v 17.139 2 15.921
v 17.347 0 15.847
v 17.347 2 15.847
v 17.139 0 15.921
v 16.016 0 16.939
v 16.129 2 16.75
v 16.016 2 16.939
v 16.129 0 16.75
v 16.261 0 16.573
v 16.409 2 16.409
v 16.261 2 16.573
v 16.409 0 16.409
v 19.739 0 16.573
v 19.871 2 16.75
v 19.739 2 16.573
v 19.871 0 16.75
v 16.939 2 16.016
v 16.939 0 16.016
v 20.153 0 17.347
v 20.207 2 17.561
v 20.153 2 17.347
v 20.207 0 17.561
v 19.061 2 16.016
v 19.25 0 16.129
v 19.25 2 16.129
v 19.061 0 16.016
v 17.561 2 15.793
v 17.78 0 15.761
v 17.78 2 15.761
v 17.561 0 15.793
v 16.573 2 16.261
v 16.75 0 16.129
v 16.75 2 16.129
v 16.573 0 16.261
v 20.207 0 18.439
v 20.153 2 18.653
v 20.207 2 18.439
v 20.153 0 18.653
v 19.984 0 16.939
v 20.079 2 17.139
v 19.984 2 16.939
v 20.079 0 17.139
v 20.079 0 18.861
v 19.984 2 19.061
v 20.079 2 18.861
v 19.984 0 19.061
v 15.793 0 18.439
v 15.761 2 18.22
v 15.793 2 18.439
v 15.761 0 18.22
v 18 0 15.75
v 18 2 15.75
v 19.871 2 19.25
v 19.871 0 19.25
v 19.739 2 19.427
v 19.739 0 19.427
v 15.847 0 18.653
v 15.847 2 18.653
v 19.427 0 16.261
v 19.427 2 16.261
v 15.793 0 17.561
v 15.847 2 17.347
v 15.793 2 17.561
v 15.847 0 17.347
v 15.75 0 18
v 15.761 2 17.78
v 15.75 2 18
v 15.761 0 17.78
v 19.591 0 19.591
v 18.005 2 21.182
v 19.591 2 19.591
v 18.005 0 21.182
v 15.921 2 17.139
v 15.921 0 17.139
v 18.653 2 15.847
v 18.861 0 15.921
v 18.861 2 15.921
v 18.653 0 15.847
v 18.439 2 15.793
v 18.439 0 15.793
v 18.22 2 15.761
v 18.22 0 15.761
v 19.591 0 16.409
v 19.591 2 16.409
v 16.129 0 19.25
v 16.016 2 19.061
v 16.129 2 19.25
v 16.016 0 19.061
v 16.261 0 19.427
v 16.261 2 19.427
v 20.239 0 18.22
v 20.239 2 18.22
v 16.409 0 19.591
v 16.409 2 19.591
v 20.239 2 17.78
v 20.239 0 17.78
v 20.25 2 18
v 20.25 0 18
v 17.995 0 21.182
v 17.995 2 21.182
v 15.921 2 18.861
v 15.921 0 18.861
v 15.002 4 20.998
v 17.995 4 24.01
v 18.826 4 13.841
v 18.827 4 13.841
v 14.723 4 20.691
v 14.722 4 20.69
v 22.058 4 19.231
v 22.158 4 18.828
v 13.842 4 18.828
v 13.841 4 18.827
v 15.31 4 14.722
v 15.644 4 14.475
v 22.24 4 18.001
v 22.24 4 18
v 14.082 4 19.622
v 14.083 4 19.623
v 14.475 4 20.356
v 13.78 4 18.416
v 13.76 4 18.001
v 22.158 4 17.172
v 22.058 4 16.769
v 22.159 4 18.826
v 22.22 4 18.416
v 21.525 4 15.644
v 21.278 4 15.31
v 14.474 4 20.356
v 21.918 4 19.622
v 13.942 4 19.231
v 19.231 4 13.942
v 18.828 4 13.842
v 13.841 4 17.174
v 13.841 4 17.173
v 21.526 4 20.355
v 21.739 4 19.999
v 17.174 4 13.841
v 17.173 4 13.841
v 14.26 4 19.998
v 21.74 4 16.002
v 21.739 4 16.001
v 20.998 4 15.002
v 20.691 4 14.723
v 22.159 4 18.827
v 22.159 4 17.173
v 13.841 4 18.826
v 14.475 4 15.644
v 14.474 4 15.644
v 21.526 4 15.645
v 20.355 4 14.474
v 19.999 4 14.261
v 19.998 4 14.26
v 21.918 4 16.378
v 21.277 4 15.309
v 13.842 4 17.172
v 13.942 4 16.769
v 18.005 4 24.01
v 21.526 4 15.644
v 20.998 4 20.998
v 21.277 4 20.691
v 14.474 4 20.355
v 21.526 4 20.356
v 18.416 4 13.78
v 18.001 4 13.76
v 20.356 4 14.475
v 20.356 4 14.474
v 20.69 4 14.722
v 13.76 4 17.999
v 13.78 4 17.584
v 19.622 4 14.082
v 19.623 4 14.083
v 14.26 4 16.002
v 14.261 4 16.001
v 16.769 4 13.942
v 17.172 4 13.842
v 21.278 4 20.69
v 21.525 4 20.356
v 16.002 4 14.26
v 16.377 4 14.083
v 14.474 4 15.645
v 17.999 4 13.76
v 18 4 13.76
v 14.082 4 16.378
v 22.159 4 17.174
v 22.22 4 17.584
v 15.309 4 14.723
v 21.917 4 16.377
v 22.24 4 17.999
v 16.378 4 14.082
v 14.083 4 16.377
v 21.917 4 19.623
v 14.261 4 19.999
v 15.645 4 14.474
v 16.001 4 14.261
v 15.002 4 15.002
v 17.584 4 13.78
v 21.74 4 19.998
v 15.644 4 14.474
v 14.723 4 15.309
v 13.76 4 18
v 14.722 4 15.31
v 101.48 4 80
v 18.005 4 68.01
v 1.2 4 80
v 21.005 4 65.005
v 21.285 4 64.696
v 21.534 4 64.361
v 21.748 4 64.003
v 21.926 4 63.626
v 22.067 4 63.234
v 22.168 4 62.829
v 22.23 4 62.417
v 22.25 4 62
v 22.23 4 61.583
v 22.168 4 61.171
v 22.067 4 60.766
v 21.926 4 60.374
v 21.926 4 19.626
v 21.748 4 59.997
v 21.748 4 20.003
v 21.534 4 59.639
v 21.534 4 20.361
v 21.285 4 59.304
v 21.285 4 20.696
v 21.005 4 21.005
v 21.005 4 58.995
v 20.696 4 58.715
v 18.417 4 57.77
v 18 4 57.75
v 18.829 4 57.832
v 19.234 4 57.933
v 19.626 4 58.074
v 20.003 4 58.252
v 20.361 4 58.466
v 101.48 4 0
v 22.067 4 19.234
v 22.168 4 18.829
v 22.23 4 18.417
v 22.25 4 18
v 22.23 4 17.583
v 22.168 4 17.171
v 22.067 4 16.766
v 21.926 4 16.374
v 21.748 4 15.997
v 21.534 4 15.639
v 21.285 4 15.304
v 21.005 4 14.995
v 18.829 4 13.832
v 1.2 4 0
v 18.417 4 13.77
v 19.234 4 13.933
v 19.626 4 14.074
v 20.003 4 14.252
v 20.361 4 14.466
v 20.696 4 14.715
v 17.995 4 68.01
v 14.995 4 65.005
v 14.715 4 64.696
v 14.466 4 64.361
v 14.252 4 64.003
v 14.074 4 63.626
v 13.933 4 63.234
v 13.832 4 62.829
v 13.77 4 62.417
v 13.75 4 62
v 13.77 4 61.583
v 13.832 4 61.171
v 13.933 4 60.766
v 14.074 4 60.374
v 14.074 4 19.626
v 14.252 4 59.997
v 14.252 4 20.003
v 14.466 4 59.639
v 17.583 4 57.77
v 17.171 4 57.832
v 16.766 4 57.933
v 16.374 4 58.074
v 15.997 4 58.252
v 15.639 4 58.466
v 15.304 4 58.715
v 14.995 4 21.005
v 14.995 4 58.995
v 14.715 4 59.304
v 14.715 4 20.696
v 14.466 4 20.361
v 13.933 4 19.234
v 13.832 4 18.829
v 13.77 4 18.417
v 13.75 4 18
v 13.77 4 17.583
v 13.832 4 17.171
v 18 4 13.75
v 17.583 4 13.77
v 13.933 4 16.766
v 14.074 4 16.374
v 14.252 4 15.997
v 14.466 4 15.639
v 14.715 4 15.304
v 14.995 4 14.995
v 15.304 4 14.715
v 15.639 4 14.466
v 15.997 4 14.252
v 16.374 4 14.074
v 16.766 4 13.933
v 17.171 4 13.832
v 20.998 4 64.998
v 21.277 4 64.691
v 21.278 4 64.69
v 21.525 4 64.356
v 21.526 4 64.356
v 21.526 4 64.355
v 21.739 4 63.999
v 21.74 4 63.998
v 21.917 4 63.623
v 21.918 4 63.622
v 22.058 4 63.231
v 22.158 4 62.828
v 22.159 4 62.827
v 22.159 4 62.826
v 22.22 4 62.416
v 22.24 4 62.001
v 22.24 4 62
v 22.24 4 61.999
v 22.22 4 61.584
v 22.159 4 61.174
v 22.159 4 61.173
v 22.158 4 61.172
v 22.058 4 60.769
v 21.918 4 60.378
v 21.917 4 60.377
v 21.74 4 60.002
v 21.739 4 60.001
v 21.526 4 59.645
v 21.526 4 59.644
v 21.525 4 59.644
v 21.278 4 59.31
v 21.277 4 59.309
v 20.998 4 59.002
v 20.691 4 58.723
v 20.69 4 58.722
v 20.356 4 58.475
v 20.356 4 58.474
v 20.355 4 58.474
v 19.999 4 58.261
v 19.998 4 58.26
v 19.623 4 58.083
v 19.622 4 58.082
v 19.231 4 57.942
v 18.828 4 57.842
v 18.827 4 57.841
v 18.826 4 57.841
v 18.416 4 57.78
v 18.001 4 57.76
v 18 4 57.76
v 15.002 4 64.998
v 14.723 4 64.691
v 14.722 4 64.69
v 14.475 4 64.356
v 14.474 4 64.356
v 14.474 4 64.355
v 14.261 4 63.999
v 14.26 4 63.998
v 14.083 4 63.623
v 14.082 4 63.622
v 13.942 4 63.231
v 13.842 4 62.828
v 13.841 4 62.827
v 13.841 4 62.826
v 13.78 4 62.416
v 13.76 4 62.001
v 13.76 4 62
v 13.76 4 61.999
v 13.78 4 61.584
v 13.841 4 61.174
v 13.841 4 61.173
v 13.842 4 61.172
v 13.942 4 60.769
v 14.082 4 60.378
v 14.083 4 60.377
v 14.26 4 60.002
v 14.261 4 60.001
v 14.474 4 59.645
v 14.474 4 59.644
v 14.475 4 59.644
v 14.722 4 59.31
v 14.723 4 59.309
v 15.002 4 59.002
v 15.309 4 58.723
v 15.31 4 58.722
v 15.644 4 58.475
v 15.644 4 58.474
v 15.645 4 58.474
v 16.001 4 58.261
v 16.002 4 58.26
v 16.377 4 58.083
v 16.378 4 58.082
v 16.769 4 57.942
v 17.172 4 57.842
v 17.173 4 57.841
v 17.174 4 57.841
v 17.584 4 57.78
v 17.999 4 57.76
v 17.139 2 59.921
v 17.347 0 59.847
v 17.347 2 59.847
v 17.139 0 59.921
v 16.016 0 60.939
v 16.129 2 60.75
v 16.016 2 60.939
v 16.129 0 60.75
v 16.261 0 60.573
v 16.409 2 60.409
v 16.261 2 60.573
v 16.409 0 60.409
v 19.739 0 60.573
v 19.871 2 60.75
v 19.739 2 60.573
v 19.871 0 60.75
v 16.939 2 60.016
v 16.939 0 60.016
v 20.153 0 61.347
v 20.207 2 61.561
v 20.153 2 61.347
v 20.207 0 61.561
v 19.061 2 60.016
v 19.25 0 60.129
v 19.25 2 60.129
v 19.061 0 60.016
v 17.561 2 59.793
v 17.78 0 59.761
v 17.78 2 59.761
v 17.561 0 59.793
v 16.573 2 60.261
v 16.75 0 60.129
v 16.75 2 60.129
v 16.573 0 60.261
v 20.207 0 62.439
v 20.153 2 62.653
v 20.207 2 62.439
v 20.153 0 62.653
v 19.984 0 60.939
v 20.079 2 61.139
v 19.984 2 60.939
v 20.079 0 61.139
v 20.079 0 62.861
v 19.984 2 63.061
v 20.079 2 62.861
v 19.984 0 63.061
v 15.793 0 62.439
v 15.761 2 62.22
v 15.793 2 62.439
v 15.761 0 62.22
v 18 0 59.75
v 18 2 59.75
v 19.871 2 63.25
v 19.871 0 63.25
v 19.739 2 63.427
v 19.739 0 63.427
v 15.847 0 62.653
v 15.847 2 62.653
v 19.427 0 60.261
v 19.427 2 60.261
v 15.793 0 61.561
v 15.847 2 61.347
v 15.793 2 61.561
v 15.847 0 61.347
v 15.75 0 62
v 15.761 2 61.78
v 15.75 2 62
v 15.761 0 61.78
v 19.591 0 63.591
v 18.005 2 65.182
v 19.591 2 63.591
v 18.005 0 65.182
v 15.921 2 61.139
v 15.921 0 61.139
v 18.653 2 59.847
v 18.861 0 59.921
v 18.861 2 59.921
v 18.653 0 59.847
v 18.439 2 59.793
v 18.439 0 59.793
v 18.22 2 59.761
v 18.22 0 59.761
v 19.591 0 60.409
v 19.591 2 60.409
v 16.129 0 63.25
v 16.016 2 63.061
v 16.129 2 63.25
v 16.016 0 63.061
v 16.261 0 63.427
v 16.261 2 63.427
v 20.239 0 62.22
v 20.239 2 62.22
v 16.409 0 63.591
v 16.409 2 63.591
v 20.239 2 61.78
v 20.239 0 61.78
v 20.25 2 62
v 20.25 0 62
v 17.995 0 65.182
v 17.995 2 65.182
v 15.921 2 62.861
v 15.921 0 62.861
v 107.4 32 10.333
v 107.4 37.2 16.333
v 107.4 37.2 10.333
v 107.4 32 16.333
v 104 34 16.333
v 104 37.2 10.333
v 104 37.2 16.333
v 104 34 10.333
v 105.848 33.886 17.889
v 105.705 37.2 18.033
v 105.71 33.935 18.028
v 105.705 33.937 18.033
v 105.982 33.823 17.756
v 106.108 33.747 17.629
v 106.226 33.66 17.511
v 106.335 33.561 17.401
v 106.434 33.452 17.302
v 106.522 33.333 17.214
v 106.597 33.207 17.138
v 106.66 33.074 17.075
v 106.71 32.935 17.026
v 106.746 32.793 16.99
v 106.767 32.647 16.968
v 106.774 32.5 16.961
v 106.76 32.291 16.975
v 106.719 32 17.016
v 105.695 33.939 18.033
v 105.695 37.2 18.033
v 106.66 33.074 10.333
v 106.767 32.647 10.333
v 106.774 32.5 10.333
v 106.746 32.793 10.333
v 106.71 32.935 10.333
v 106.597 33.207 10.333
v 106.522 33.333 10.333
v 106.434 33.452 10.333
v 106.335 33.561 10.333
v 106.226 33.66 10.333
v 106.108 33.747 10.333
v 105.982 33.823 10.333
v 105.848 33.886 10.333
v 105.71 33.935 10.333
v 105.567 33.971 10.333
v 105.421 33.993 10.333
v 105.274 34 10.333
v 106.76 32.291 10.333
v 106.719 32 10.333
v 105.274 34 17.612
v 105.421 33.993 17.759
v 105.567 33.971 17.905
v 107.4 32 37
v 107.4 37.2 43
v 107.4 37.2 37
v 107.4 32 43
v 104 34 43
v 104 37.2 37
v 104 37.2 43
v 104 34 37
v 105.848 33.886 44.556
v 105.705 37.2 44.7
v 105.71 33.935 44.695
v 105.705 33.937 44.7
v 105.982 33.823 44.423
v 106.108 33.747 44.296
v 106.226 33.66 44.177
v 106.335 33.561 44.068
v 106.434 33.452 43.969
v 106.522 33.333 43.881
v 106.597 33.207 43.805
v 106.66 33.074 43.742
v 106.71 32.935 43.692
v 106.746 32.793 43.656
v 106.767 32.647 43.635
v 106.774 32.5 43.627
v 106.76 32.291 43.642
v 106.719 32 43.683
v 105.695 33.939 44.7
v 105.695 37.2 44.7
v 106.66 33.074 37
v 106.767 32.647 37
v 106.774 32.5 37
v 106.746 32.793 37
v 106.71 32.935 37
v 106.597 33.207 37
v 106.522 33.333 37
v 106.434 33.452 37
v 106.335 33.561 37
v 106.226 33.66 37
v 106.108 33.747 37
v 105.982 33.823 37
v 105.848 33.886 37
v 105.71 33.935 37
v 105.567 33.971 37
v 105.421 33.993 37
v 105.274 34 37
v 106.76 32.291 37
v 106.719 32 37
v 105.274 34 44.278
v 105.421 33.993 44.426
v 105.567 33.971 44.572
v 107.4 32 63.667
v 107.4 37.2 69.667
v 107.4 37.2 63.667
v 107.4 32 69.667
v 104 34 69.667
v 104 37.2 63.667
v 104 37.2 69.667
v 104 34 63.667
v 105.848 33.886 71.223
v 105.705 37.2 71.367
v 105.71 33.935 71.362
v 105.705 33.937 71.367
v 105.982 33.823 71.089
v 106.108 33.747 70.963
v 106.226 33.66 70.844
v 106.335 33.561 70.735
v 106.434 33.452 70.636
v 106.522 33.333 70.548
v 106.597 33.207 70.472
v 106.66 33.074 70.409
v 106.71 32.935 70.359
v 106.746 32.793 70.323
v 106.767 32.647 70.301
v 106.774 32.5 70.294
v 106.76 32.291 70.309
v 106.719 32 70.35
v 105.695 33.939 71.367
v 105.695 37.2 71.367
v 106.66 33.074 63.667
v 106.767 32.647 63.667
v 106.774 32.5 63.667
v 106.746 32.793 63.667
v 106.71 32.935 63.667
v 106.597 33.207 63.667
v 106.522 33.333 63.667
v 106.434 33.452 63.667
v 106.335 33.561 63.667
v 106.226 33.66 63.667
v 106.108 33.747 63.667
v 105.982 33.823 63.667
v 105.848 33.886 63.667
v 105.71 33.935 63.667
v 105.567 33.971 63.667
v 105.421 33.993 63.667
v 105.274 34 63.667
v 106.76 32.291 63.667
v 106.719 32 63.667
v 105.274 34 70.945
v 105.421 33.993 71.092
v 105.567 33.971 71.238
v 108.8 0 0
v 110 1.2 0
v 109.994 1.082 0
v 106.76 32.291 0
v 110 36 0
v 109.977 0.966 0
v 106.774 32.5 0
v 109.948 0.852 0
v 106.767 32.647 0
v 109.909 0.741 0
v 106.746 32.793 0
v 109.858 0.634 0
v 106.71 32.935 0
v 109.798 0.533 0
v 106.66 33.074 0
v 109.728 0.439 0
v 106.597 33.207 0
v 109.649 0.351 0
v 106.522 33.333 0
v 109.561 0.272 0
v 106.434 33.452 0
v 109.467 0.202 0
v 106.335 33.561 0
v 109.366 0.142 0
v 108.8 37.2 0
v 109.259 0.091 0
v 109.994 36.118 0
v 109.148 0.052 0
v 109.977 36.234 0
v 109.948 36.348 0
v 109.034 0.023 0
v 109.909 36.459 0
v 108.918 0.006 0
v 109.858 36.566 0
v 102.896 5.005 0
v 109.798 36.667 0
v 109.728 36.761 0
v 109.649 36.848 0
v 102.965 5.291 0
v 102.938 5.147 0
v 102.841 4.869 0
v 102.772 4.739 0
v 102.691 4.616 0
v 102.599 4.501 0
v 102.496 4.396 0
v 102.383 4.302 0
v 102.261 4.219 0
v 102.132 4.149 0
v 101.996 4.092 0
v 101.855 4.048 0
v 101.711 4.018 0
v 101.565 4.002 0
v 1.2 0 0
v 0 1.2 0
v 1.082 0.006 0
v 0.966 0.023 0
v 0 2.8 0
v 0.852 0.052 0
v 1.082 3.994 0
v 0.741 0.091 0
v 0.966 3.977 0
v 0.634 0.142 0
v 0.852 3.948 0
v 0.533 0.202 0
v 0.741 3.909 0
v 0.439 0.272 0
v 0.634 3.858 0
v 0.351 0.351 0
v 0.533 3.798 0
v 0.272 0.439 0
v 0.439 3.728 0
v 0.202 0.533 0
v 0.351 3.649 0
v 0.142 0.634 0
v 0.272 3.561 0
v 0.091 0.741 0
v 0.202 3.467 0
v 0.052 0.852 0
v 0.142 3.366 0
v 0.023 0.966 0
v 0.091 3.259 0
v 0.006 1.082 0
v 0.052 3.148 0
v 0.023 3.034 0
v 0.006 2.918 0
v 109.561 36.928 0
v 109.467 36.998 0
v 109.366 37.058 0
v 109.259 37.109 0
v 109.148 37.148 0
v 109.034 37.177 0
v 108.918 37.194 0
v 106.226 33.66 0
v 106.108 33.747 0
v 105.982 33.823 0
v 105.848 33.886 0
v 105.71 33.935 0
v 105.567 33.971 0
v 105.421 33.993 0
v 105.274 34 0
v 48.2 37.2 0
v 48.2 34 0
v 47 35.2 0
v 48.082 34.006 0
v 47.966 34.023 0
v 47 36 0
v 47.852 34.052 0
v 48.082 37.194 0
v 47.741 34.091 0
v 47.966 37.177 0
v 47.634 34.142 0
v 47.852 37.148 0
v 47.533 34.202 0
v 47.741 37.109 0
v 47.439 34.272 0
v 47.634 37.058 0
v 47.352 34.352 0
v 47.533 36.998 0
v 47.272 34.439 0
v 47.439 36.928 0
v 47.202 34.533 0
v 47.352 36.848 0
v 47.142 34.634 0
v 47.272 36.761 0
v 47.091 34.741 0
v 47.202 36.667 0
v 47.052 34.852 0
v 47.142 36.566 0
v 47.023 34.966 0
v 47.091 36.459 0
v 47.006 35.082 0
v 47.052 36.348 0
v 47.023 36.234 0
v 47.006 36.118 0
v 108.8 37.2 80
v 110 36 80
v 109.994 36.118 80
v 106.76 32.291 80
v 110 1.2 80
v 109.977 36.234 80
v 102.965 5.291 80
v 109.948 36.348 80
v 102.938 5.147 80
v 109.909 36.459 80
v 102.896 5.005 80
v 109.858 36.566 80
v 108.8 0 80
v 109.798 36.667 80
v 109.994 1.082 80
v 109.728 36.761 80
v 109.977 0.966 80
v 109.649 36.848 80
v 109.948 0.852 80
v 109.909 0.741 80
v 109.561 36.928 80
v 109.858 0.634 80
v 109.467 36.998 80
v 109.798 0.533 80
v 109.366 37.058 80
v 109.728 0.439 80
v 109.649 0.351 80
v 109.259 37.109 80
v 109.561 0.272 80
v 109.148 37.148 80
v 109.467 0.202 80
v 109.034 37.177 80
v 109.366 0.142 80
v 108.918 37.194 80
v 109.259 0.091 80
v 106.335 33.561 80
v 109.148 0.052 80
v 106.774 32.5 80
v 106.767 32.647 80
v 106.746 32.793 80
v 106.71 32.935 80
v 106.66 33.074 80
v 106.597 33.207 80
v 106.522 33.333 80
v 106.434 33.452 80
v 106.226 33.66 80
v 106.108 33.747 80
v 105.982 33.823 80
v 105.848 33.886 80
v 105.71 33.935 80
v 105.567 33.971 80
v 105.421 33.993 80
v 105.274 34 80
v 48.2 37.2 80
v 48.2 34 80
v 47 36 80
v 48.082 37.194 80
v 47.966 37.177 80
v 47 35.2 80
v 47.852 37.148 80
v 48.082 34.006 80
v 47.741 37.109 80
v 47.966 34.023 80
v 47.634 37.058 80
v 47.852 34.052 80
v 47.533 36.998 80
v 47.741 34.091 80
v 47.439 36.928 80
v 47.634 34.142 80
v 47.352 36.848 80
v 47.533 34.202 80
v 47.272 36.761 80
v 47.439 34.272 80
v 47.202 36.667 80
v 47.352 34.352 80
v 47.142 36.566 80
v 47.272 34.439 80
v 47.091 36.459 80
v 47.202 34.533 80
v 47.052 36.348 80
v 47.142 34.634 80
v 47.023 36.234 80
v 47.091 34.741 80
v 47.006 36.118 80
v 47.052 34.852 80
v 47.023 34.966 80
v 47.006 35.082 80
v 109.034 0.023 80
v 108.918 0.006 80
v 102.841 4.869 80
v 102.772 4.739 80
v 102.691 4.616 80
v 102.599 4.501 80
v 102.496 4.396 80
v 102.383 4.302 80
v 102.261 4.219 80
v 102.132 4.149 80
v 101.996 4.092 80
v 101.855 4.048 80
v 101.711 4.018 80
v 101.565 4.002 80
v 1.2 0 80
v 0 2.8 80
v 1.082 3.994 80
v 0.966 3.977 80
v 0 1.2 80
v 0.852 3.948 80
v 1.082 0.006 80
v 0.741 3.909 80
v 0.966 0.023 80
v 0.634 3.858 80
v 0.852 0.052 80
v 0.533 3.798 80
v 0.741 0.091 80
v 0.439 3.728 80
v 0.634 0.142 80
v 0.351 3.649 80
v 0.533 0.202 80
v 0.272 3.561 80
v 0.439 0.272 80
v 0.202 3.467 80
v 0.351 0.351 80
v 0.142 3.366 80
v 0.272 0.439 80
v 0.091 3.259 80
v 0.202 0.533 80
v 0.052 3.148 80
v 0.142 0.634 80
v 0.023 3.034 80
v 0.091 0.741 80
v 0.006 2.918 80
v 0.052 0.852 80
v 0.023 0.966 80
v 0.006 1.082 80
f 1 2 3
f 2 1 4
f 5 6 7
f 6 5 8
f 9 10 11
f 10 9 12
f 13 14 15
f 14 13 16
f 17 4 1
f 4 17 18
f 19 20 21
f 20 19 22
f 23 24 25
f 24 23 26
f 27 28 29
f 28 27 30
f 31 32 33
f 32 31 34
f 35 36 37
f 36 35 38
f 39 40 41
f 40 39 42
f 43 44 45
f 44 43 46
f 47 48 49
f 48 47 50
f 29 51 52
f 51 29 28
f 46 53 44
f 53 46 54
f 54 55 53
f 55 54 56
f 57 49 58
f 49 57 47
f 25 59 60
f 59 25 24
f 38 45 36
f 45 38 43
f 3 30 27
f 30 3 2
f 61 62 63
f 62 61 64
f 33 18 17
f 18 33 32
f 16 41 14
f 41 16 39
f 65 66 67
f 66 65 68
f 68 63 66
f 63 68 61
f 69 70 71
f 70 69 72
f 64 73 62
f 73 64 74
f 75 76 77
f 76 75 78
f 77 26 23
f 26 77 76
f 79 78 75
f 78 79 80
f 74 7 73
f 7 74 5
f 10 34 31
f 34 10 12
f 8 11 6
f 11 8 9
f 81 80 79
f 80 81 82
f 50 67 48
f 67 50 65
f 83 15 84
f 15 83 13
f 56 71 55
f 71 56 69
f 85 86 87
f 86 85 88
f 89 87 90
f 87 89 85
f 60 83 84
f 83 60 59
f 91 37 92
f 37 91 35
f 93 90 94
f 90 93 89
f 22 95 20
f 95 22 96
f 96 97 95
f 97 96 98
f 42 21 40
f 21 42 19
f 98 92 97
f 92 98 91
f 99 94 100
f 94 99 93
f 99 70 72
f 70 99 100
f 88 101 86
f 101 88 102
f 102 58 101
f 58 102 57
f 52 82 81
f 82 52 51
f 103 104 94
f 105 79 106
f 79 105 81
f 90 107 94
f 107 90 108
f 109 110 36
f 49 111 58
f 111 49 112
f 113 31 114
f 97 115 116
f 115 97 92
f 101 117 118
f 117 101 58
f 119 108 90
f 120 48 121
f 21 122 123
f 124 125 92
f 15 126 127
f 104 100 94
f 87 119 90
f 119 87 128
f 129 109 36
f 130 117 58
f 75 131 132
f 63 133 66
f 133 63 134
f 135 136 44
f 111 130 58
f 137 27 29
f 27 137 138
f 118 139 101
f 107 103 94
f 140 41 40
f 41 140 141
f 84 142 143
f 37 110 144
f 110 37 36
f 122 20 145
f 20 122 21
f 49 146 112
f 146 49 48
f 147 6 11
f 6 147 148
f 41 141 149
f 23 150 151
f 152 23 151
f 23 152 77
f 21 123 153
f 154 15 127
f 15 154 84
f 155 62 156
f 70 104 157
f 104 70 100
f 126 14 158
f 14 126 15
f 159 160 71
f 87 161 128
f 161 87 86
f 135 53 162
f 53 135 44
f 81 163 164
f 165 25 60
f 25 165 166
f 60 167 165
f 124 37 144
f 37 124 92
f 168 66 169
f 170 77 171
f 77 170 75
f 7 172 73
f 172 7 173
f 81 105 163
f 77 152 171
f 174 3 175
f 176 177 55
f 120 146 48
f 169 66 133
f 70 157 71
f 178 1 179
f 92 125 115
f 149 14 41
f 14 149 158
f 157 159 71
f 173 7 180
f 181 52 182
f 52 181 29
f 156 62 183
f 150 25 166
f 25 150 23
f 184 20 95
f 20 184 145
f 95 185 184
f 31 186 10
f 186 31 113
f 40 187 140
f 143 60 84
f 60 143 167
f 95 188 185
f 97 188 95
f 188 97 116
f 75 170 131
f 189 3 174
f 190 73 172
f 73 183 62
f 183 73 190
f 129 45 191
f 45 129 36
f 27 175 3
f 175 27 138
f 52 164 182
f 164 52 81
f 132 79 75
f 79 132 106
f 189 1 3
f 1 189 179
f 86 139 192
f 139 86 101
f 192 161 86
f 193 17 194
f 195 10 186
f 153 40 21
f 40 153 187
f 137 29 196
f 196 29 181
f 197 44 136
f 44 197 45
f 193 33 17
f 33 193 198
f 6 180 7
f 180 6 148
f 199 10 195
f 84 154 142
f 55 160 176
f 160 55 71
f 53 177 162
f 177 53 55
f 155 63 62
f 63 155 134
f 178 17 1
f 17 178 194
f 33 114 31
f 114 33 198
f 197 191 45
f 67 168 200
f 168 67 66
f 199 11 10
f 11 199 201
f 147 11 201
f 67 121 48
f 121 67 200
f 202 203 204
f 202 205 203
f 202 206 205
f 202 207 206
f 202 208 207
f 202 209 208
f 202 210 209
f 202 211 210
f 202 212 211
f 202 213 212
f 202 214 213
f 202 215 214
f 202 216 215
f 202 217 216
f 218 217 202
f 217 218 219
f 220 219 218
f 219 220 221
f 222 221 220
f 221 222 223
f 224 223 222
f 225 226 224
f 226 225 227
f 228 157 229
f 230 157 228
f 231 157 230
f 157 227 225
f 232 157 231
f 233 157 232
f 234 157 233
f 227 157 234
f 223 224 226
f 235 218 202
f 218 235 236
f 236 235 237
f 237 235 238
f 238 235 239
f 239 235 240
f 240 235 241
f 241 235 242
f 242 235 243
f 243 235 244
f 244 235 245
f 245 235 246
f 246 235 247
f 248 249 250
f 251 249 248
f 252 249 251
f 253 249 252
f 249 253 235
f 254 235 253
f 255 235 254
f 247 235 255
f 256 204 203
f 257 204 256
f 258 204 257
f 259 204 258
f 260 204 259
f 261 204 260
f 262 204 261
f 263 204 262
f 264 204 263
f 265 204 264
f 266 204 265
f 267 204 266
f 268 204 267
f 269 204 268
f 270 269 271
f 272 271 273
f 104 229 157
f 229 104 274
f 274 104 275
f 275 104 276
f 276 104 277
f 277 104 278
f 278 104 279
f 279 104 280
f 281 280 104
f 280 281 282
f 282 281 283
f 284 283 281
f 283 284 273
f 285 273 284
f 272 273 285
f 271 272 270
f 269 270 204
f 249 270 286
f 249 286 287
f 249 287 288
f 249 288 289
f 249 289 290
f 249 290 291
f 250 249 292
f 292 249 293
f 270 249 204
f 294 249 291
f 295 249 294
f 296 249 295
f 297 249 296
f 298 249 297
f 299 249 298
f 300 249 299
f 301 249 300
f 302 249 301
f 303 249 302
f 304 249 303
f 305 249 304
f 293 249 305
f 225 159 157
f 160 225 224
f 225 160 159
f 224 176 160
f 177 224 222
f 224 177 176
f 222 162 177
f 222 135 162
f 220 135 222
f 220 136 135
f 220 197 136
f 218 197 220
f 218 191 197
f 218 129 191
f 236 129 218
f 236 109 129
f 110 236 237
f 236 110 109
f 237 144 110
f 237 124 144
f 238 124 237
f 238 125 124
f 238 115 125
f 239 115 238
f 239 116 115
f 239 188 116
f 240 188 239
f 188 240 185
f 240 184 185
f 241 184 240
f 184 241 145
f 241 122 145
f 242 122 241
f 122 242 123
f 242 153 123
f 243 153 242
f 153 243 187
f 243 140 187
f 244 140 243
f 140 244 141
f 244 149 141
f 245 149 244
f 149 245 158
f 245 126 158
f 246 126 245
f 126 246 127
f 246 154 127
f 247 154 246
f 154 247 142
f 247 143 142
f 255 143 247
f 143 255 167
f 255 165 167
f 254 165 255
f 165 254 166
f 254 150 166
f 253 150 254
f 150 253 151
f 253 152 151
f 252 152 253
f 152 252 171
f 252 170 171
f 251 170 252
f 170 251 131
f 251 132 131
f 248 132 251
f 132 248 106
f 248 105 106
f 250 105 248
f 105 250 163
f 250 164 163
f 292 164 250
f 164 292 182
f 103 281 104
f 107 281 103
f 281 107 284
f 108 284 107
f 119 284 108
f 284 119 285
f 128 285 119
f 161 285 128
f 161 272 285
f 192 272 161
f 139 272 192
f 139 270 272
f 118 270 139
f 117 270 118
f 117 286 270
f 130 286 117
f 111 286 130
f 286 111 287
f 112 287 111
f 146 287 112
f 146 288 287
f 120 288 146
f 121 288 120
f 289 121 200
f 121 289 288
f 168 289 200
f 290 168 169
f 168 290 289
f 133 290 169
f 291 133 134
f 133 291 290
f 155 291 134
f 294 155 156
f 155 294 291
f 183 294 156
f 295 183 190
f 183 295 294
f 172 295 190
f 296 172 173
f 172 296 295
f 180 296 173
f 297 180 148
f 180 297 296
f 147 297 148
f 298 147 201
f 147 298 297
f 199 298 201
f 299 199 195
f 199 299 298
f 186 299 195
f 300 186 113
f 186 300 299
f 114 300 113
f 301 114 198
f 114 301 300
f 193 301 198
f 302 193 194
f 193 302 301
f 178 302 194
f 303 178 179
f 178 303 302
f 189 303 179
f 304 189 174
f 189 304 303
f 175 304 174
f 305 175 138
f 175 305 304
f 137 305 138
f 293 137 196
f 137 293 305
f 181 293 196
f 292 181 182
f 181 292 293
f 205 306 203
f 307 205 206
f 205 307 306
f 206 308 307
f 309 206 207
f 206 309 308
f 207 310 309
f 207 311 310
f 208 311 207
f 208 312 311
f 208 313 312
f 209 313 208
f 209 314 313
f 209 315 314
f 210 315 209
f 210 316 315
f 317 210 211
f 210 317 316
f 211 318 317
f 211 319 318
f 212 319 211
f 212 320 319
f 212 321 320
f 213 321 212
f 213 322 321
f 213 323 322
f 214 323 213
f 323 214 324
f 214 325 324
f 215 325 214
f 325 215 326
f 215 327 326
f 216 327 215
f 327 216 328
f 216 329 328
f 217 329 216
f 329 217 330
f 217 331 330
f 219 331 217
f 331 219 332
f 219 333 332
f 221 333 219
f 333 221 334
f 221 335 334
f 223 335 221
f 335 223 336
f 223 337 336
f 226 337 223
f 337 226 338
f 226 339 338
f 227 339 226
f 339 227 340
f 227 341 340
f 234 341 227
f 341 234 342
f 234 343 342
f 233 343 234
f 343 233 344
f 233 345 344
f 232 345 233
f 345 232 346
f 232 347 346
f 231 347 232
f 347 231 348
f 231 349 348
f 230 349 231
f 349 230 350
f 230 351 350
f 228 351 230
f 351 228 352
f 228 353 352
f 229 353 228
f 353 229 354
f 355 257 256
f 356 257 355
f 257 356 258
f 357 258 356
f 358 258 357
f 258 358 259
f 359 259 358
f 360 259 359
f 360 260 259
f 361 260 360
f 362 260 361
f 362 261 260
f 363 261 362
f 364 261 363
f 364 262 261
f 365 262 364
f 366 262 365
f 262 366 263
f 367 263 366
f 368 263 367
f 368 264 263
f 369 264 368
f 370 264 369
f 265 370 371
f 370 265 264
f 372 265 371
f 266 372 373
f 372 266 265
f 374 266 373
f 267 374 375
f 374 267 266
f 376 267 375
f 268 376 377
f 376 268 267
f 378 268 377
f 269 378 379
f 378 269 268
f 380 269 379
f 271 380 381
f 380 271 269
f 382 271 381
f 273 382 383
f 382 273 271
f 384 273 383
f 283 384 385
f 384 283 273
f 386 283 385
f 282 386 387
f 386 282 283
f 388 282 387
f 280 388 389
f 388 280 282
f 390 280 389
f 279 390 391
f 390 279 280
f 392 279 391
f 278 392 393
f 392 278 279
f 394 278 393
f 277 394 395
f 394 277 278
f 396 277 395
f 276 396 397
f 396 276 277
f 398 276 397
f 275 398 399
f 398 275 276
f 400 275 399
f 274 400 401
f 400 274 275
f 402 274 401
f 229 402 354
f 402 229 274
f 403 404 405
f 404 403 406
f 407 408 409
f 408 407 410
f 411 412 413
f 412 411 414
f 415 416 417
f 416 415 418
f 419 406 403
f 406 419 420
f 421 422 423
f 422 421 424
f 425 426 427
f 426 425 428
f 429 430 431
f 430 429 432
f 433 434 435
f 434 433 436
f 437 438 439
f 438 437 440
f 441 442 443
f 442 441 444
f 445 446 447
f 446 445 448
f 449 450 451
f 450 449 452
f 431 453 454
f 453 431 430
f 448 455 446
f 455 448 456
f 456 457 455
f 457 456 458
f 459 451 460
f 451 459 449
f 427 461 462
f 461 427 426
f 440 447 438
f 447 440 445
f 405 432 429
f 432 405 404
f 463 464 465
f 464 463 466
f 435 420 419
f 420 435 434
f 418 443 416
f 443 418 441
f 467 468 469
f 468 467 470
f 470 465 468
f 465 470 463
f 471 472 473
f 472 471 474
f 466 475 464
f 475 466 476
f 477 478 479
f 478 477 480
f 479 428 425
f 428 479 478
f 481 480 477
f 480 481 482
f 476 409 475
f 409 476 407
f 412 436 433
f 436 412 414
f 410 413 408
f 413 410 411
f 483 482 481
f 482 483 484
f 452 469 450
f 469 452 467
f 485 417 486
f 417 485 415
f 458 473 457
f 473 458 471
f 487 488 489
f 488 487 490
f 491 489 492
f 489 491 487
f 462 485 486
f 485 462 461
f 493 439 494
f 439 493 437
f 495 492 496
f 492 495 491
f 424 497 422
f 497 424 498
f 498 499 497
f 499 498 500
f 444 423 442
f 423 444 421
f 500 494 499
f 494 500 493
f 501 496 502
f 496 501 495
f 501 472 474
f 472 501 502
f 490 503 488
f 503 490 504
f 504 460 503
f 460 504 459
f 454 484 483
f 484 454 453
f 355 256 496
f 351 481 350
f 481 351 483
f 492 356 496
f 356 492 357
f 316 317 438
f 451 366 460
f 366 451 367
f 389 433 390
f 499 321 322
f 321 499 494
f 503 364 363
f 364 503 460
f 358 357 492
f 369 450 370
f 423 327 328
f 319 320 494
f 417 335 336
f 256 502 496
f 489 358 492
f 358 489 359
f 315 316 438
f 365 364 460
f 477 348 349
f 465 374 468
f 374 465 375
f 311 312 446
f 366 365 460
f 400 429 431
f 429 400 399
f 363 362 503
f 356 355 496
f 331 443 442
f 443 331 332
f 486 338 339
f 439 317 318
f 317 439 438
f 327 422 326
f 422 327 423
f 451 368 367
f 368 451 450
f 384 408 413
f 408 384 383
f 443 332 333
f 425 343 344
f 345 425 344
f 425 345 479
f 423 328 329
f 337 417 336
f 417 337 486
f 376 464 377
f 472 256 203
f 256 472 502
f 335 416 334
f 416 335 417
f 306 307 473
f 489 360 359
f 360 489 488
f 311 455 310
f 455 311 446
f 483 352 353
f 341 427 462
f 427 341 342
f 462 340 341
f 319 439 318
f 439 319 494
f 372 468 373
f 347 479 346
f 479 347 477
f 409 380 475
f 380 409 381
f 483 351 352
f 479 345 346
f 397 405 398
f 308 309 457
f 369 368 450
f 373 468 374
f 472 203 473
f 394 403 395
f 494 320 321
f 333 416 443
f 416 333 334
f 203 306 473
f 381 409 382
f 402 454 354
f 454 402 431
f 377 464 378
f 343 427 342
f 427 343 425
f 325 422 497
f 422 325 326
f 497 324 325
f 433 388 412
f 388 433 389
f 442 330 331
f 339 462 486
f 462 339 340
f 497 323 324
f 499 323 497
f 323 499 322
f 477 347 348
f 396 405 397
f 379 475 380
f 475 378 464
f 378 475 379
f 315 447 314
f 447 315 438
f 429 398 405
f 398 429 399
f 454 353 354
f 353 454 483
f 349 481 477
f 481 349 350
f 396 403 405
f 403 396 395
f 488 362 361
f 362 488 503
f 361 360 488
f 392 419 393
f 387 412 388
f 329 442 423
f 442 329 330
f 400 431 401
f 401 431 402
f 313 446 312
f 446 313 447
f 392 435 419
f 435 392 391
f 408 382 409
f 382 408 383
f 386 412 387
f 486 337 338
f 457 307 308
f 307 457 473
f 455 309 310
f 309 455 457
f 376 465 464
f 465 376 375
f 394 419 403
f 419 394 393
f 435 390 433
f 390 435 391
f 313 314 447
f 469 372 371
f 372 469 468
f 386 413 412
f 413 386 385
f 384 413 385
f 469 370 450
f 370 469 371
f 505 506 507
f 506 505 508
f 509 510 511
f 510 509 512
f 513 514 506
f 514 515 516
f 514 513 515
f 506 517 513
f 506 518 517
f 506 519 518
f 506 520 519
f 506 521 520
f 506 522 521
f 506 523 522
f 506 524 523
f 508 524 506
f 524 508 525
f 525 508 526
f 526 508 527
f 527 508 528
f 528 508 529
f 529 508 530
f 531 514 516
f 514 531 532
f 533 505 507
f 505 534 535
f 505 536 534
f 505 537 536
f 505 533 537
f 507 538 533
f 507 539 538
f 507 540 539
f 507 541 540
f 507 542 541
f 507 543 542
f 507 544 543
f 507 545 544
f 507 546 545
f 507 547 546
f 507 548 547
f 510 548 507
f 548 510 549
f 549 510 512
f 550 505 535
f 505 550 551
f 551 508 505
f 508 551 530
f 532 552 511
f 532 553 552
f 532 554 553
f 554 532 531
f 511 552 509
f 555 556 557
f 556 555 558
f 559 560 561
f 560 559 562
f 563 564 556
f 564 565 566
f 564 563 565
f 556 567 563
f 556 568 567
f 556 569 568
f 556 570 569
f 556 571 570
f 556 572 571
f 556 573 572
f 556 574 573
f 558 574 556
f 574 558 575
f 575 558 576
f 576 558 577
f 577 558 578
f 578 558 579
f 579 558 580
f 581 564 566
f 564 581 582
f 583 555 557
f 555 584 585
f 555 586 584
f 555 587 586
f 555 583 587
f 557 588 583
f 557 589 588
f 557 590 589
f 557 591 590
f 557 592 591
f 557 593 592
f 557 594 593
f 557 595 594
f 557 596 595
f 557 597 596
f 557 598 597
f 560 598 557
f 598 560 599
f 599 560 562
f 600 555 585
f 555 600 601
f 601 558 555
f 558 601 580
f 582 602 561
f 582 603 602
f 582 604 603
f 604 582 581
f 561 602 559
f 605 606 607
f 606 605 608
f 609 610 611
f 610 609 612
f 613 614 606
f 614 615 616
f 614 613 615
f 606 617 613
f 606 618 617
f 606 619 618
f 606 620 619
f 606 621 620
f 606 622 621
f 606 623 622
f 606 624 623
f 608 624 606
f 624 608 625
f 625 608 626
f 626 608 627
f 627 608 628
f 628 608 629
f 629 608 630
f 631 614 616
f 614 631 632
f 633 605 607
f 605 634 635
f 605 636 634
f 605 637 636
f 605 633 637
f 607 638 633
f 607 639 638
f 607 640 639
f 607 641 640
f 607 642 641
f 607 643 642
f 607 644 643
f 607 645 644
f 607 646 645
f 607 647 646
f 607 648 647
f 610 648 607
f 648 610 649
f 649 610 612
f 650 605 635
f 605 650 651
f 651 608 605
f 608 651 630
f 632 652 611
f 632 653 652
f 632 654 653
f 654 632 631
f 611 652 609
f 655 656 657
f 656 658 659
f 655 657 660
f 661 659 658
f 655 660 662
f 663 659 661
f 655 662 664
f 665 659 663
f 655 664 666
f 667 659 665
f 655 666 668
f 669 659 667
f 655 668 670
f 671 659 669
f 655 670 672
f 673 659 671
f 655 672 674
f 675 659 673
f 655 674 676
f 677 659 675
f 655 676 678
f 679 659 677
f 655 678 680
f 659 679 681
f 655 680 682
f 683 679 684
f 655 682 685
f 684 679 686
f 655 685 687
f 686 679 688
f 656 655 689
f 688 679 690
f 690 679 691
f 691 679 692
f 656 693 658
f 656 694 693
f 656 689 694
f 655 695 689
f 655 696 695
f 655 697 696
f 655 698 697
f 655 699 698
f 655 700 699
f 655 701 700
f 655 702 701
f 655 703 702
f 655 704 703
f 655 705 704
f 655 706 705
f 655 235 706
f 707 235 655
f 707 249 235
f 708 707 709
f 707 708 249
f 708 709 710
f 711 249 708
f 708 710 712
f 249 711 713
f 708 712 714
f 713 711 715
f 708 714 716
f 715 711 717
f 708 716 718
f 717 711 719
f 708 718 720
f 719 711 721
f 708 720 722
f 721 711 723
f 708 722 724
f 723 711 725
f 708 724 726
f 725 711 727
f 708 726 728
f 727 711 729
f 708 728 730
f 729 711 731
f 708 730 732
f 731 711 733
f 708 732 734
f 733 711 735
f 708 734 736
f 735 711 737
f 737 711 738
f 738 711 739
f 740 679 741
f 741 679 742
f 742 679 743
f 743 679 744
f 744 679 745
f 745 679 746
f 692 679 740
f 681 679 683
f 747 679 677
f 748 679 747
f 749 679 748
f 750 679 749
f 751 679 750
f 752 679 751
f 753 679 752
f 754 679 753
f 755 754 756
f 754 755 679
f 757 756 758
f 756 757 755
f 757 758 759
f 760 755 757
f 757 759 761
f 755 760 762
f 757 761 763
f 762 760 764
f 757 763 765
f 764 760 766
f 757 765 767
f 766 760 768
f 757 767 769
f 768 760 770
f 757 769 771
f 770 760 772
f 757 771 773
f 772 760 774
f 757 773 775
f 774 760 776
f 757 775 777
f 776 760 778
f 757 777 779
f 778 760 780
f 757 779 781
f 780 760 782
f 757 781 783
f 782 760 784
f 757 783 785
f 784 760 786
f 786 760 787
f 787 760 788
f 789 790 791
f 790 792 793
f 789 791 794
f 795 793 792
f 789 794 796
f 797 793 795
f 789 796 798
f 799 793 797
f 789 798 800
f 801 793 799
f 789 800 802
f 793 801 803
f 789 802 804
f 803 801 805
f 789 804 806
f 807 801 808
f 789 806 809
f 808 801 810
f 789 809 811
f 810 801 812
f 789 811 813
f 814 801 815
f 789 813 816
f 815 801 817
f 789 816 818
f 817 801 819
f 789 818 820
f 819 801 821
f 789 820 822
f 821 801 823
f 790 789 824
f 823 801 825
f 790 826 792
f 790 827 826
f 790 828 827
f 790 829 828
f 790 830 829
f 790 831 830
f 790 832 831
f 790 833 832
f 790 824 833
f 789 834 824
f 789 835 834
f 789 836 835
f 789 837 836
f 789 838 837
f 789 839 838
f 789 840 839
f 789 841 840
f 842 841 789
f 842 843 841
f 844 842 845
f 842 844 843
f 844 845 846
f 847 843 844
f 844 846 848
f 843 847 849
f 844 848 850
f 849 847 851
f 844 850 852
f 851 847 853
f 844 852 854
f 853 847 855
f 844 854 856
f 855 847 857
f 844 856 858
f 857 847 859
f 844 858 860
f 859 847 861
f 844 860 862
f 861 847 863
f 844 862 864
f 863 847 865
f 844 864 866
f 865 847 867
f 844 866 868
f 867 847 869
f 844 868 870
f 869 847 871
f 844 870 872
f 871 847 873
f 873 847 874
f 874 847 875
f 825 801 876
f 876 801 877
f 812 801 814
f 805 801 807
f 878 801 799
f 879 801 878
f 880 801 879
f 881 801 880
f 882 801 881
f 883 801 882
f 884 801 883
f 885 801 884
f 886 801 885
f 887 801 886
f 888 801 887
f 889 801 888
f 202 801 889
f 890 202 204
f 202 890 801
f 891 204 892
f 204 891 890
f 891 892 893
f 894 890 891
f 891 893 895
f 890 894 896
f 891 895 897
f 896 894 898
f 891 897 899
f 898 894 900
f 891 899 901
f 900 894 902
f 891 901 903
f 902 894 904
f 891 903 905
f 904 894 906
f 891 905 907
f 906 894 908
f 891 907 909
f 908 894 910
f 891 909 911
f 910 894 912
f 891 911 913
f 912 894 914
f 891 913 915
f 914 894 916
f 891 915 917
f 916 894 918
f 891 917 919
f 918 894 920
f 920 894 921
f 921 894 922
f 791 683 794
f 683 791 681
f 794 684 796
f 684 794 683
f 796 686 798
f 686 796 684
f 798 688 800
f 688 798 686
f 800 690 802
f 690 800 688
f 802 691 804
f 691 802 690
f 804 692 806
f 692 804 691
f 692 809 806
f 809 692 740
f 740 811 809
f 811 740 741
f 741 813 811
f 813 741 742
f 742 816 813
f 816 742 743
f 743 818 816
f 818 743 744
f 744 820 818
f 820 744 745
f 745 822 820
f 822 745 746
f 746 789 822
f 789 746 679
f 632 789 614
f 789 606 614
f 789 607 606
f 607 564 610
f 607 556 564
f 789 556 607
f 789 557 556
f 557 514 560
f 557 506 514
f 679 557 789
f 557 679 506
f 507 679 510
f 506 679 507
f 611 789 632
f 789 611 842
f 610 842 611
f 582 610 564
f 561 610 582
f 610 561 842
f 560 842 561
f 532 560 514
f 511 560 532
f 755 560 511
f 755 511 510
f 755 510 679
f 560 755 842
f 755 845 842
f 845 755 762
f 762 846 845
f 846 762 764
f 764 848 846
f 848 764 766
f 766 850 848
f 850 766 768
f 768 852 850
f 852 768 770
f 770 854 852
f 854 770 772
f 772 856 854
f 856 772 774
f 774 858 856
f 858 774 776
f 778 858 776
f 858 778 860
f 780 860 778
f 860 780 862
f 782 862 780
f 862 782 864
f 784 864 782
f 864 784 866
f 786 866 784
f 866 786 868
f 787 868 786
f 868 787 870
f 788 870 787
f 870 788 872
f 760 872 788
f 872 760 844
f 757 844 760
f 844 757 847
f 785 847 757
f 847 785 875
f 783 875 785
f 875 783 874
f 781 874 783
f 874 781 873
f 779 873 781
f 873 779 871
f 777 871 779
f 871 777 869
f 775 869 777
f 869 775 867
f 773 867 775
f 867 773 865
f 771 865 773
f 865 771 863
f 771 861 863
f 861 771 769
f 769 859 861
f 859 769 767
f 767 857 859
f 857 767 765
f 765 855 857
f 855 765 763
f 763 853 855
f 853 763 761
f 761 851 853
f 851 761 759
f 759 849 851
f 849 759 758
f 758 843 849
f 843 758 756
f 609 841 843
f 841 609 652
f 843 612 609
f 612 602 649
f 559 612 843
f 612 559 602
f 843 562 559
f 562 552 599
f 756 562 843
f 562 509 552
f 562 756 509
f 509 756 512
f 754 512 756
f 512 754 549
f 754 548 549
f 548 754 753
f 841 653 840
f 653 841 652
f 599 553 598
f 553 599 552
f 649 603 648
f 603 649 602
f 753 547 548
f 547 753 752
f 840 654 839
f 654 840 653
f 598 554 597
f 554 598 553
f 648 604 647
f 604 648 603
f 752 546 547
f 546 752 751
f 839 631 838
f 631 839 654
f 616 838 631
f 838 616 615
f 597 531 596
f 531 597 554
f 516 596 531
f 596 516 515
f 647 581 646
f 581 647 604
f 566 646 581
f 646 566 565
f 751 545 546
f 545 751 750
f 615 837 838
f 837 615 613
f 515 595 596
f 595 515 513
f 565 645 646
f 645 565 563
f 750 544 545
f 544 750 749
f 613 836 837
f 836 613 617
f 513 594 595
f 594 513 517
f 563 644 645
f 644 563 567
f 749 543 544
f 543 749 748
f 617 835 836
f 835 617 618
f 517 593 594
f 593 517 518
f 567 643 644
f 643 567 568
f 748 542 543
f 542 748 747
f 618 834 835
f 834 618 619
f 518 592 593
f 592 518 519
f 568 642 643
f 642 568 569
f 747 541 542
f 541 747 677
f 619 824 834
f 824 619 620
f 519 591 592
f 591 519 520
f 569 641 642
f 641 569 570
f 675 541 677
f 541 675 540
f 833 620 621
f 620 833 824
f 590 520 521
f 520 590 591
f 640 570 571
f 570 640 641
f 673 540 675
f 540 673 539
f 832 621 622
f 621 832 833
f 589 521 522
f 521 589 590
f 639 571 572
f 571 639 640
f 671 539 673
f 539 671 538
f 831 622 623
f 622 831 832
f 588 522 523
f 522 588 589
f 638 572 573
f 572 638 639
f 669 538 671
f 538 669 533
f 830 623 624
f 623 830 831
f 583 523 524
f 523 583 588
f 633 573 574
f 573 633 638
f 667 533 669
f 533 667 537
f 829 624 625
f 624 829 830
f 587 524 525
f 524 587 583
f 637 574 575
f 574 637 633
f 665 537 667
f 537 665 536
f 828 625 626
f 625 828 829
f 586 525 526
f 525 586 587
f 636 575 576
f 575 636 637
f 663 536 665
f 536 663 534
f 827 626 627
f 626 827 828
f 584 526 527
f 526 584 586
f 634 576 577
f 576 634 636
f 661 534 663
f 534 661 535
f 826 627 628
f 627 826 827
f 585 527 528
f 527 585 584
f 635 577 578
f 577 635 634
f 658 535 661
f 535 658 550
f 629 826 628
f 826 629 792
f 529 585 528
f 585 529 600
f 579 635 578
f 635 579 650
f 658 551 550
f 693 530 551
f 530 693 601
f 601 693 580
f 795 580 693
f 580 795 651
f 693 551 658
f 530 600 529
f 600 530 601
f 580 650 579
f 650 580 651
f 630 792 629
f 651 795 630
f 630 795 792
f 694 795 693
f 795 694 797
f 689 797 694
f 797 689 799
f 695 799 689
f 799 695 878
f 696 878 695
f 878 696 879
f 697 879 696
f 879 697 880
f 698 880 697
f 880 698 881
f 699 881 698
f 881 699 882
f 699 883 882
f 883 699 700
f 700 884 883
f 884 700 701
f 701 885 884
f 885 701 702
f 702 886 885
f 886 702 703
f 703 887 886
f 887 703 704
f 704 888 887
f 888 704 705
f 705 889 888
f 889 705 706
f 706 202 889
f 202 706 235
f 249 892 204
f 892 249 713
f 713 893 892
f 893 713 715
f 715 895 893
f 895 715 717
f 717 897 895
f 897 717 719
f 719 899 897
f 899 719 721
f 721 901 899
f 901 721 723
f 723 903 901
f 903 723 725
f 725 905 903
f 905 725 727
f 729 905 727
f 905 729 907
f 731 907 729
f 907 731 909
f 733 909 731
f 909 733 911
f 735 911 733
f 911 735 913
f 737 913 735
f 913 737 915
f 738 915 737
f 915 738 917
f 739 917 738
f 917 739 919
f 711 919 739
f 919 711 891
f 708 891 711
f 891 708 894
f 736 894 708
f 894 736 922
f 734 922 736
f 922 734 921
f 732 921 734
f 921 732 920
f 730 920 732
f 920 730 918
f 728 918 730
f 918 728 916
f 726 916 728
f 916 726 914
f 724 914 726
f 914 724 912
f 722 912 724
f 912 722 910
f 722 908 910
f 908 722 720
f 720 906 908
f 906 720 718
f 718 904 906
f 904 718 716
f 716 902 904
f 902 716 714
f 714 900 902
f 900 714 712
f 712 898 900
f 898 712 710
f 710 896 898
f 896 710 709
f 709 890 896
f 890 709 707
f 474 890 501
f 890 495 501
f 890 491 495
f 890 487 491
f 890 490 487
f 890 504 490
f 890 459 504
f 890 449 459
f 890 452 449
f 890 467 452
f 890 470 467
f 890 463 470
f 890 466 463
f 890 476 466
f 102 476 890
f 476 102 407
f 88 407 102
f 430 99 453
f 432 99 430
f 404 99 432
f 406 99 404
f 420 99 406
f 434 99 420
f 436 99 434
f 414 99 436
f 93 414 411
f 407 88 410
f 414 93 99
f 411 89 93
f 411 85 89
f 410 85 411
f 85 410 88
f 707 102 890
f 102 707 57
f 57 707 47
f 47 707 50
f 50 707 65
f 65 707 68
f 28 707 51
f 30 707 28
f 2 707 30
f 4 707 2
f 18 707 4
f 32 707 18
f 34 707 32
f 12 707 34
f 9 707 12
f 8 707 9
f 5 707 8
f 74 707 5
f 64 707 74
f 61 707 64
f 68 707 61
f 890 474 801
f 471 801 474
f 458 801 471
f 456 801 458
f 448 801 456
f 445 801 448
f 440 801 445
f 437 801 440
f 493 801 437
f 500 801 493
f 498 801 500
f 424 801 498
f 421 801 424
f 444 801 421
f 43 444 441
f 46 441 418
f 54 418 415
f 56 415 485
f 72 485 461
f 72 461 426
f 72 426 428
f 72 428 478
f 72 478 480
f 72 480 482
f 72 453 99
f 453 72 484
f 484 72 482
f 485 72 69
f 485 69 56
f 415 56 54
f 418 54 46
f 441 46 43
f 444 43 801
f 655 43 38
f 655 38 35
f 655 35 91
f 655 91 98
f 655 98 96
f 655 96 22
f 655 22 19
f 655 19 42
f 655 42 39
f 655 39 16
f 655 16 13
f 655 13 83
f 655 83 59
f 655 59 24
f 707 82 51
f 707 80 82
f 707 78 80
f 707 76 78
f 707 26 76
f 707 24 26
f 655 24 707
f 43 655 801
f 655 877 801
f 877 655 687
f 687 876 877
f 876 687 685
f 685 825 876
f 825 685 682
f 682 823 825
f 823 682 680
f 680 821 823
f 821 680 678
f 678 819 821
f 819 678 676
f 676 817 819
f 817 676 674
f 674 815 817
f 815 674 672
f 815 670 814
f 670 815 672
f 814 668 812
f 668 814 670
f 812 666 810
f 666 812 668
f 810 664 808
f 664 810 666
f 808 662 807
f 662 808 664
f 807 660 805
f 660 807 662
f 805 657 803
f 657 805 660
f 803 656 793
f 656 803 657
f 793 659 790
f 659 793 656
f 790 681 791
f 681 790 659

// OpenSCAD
// Flexible cutting-mat rack: wall / cabinet-door pocket bracket
// ---------------------------------------------------------------
// Floppy plastic cutting mats cannot stand up on their own, so this
// bracket never asks them to. It catches the bottom edge in a pocket
// whose floor slopes toward the front: the mat bottoms slide forward
// against the lip, so the tops always lean BACK onto the wall/door and
// gravity keeps them flat. Print two and stand the mats on their long
// edge across both (see README.md).
//
// Units: mm.  Use coordinates: X = along the wall, Y = out from the
// wall, Z = up.  The exported STL is rotated into print orientation
// (profile flat on the bed, no supports needed).

/* [Mats] */
mat_count      = 6;     // how many mats the pocket must hold
mat_thickness  = 2.0;   // thickest mat you own (most flexible mats: 0.5-2)

/* [Bracket] */
width          = 80;    // length along the wall = print height
pocket_gap     = 30;    // inside depth; deeper = more lean-back
lip_height     = 60;    // front lip height above the floor
lip_wall       = 3.2;   // 8 x 0.4 mm lines
back_wall      = 4.0;
back_height    = 110;   // tall enough to put the screws above the lip
floor_min      = 3.0;   // floor thickness at its thinnest (front)
floor_slope    = 8;     // degrees, falls toward the lip

/* [Drainage] */
weep_count     = 3;
weep_w         = 6;     // along the wall (vertical when printing)
weep_h         = 3;     // height above the floor (bridged when printing)

/* [Screws] */
screw_d        = 4.5;   // clearance for #8 / M4 / 4 mm wood screws
screw_head_d   = 8.5;   // 90 degree countersunk head
screw_spacing  = 44;
screw_z        = 92;

/* [Printer] */
nozzle         = 0.4;
bed_x          = 180;   // smallest common bed (Prusa Mini) -- for asserts
bed_y          = 180;
max_z          = 180;

/* [Output] */
orient         = "print"; // "print" or "use"

$fn = 64;

// ---------- derived -------------------------------------------------
y_in    = back_wall + pocket_gap;           // inner face of lip
y_out   = y_in + lip_wall;                  // overall depth
z_front = floor_min;                        // floor top at the lip
z_back  = floor_min + pocket_gap * tan(floor_slope);
z_lip   = z_front + lip_height;
r_out   = 1.2;                              // convex rounding
r_in    = 1.5;                              // concave fillet
stack   = mat_count * mat_thickness;
cs_depth = (screw_head_d - screw_d) / 2;    // 90 deg countersink

// ---------- design rules (fail the build, not the print) -----------
assert(stack + 6 <= pocket_gap,
       "pocket too shallow for the mat stack plus finger/lean room");
assert(lip_wall >= 2 * nozzle && abs(lip_wall / nozzle - round(lip_wall / nozzle)) < 1e-6,
       "lip wall must be a whole number (>=2) of nozzle widths");
assert(back_wall >= 3, "back wall too thin to hold a countersunk screw");
assert(cs_depth <= back_wall - 1.5, "countersink would leave <1.5 mm under the head");
assert(screw_z - screw_head_d / 2 >= z_lip + 5,
       "screw heads must sit above the lip so a screwdriver can reach them");
assert(screw_z + screw_head_d / 2 <= back_height - 3, "screw too close to top edge");
assert(screw_spacing / 2 + screw_head_d / 2 <= width / 2 - 4, "screws too close to the ends");
assert(floor_slope >= 5 && floor_slope <= 20, "floor slope outside 5..20 deg");
assert(r_out < lip_wall / 2, "rounding radius would eat the lip");
assert(weep_count * (weep_w + 6) <= width, "too many weep holes for this width");
assert(width <= max_z, "bracket taller than printer Z");
assert(y_out <= bed_x && back_height <= bed_y, "profile does not fit the bed");

// machine-readable values for check_model.py
echo(str("PARAM width=", width));
echo(str("PARAM y_in=", y_in));
echo(str("PARAM y_out=", y_out));
echo(str("PARAM back_wall=", back_wall));
echo(str("PARAM back_height=", back_height));
echo(str("PARAM z_front=", z_front));
echo(str("PARAM z_back=", z_back));
echo(str("PARAM z_lip=", z_lip));
echo(str("PARAM lip_wall=", lip_wall));
echo(str("PARAM floor_slope=", floor_slope));
echo(str("PARAM mat_count=", mat_count));
echo(str("PARAM mat_thickness=", mat_thickness));
echo(str("PARAM screw_z=", screw_z));
echo(str("PARAM screw_spacing=", screw_spacing));
echo(str("PARAM screw_d=", screw_d));
echo(str("PARAM weep_count=", weep_count));
echo(str("PARAM weep_w=", weep_w));
echo(str("PARAM weep_h=", weep_h));

// ---------- geometry ------------------------------------------------
// 2D side profile: x = Y (out from wall), y = Z (up)
module raw_profile() {
    polygon([
        [0,      0],
        [y_out,  0],
        [y_out,  z_lip],
        [y_in,   z_lip],
        [y_in,   z_front],
        [back_wall, z_back],
        [back_wall, back_height],
        [0,      back_height]
    ]);
}

module profile() {
    // round convex corners, then fillet the concave ones
    offset(r = -r_in) offset(delta = r_in)
        offset(r = r_out) offset(delta = -r_out)
            raw_profile();
}

// Cone with a 45 deg "teardrop" roof toward +X, axis along +Z.
// +X becomes straight up when printing, so the hole needs no support.
module teardrop_cone(h, r1, r2) {
    hull() {
        cylinder(h = h, r1 = r1, r2 = r2);
        translate([r1 * sqrt(2) - 0.01, -0.005, 0])     cube([0.01, 0.01, 0.01]);
        translate([r2 * sqrt(2) - 0.01, -0.005, h - 0.01]) cube([0.01, 0.01, 0.01]);
    }
}

module screw_hole() {
    // axis along +Y (out of the wall); countersink on the front face
    rotate([-90, 0, 0]) {
        translate([0, 0, -1]) teardrop_cone(back_wall + 2, screw_d / 2, screw_d / 2);
        translate([0, 0, back_wall - cs_depth])
            teardrop_cone(cs_depth + 0.01, screw_d / 2, screw_head_d / 2);
        // open space in front of the head so the cone is not capped
        translate([0, 0, back_wall])
            teardrop_cone(2, screw_head_d / 2, screw_head_d / 2);
    }
}

// Drain slot through the lip at floor level, pointed roof toward +X.
module weep_hole() {
    hh = weep_h + 0.4;  // dips 0.4 below the floor so no puddle is left
    translate([0, y_in - 2, z_front - 0.4])
        hull() {
            cube([weep_w, lip_wall + 4, hh]);
            // apex centred on the slot, hh/2 beyond it -> 45 deg roof
            translate([weep_w + hh / 2 - 0.01, 0, hh / 2 - 0.005])
                cube([0.01, lip_wall + 4, 0.01]);
        }
}

module bracket() {
    difference() {
        rotate([90, 0, 90]) linear_extrude(width) profile();

        for (s = [-1, 1])
            translate([width / 2 + s * screw_spacing / 2, 0, screw_z]) screw_hole();

        pitch = width / weep_count;
        for (i = [0 : weep_count - 1])
            translate([pitch * (i + 0.5) - weep_w / 2, 0, 0]) weep_hole();
    }
}

if (orient == "print")
    // use-X -> print Z (up). Profile lies on the bed.
    translate([back_height, 0, 0]) rotate([0, -90, 0]) bracket();
else
    bracket();
